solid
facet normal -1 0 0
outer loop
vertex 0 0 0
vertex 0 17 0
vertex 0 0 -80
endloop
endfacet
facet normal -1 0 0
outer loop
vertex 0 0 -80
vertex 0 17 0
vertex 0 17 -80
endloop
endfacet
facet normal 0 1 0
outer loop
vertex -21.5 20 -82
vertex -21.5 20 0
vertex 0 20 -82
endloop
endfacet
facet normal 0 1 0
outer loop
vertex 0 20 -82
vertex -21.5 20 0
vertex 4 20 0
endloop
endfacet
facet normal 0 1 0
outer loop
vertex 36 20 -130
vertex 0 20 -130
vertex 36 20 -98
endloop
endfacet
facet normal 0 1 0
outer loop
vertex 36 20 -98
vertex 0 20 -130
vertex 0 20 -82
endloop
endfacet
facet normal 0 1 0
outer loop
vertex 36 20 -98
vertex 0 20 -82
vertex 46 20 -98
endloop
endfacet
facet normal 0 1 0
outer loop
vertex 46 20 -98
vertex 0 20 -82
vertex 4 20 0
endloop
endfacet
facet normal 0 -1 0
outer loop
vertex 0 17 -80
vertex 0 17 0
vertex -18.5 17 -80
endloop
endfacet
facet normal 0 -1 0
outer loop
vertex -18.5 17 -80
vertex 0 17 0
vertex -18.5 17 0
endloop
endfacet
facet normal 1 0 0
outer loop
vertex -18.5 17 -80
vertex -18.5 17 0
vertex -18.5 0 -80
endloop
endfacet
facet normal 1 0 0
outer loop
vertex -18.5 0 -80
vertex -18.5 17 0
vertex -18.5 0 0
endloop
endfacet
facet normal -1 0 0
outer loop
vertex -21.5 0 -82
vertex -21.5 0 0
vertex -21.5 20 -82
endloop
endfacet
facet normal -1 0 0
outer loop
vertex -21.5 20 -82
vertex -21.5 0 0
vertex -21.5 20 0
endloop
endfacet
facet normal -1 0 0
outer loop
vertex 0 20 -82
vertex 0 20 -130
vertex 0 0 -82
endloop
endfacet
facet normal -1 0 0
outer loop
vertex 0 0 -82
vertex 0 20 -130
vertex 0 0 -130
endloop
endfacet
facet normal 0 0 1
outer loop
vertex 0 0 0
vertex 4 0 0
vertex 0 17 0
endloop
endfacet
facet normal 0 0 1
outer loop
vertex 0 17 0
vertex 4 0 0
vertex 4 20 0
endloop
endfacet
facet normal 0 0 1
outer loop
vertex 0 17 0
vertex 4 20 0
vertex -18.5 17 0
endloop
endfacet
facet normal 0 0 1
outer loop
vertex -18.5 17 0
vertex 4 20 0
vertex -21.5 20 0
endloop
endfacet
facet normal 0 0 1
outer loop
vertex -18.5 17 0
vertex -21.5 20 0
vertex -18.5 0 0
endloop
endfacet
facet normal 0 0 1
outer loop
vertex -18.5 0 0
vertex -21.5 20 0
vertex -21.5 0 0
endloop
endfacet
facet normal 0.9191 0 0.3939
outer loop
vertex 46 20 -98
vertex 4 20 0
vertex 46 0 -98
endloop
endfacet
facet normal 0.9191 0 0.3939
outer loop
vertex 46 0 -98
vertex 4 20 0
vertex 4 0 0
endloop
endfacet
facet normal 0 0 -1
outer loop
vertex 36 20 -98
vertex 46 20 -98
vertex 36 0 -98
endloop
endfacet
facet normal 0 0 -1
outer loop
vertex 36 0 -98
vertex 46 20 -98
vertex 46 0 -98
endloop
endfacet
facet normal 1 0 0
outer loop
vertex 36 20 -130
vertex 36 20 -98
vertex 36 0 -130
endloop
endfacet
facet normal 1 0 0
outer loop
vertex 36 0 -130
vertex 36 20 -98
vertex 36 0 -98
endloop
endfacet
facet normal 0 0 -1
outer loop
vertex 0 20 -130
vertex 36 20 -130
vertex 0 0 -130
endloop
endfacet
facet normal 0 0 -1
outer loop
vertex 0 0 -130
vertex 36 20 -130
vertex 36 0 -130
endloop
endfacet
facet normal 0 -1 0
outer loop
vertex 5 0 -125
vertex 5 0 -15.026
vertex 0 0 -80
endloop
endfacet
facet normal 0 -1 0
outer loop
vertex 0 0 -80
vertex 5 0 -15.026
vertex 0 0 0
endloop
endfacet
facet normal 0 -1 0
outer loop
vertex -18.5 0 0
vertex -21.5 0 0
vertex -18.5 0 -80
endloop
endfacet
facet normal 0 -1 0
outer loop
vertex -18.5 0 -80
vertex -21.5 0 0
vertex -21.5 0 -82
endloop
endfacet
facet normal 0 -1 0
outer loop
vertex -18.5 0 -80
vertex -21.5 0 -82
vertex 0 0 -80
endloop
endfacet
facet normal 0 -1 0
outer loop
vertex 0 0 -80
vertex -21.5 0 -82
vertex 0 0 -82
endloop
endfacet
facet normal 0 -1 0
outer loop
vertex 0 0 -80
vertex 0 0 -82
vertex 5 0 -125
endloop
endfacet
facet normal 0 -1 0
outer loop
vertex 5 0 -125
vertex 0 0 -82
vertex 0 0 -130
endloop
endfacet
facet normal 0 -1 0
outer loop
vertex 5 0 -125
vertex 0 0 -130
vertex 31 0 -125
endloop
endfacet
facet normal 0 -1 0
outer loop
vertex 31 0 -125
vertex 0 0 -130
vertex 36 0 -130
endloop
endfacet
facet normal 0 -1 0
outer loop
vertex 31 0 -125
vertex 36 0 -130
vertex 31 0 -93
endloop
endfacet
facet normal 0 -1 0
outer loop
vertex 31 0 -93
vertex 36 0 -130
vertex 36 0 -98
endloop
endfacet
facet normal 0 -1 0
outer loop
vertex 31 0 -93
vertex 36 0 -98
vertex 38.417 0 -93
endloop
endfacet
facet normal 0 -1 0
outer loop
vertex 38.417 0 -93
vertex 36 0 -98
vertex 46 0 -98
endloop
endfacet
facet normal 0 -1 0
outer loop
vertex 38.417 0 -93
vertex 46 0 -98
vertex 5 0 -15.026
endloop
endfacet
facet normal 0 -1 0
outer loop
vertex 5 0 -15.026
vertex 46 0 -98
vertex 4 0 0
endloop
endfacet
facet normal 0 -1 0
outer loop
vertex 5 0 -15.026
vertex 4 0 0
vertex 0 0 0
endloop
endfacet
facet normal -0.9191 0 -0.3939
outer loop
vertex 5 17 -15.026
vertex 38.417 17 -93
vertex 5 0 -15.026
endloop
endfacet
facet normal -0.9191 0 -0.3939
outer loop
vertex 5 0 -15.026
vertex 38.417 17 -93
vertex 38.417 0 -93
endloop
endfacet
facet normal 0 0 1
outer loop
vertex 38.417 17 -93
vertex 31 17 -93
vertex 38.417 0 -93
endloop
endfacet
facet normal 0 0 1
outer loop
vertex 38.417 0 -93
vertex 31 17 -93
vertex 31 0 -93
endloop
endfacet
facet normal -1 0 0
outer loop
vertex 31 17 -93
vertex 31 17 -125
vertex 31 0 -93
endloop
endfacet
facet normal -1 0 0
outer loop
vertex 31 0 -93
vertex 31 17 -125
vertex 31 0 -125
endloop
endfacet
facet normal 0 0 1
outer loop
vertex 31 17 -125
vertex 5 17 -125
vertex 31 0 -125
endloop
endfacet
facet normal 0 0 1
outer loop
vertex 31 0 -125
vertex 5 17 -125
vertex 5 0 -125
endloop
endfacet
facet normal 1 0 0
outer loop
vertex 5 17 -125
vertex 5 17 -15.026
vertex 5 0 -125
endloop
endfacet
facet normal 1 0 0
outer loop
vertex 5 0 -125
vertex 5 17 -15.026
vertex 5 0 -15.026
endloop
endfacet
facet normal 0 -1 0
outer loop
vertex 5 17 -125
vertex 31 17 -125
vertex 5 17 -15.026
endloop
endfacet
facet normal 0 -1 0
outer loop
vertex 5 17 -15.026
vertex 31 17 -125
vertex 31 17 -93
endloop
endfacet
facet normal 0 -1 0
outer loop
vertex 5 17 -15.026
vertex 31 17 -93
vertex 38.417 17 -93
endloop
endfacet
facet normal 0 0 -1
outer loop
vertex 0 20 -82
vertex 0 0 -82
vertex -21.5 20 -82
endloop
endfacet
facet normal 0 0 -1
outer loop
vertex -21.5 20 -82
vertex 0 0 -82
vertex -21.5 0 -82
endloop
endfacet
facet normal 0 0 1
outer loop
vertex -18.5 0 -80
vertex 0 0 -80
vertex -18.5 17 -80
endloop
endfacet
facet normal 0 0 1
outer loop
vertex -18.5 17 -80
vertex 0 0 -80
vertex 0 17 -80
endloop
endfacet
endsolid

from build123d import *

# Parameters (mm, degrees)
BOSS_EXTRU_1_DEPTH      = 20
BOSS_EXTRU_2_DEPTH      = 85
ESQUISSE4_W             = 50
ESQUISSE4_H             = 20
ENL_V_MAT_EXTRU_1_DEPTH = 47
ENL_V_MAT_EXTRU_2_DEPTH = 17
ESQUISSE6_W             = 21.5
ESQUISSE6_H             = 20
BOSS_EXTRU_3_DEPTH      = 2


with BuildPart() as part:
    # Esquisse1 → Boss.-Extru.1 (new body)
    with BuildSketch(Plane(origin=(0, 0, 0), x_dir=(1, 0, 0), z_dir=(0, 1, 0))):
        Polygon((0, 0), (0, 130), (36, 130), (36, 98), (46, 98), (4, 0), align=None)
    extrude(amount=BOSS_EXTRU_1_DEPTH)

    # Esquisse3 → Boss.-Extru.2 (add)
    with BuildSketch(Plane.XY):
        Polygon((0, 20), (-21.5, 20), (-21.5, 0), (-18.5, 0), (-18.5, 17), (0, 17), align=None)
    extrude(amount=-BOSS_EXTRU_2_DEPTH)

    # Esquisse4 → Enlèv. mat.-Extru.1 (cut)
    with BuildSketch(Plane.ZY):
        with Locations((-105, 10)):
            Rectangle(ESQUISSE4_W, ESQUISSE4_H)
    extrude(amount=ENL_V_MAT_EXTRU_1_DEPTH, mode=Mode.SUBTRACT)

    # Esquisse5 → Enlèv. mat.-Extru.2 (cut)
    with BuildSketch(Plane.XZ):
        Polygon((5, -15.02628851), (5, -125), (31, -125), (31, -93), (38.417304924, -93), align=None)
    extrude(amount=-ENL_V_MAT_EXTRU_2_DEPTH, mode=Mode.SUBTRACT)

    # Esquisse6 → Boss.-Extru.3 (add)
    with BuildSketch(Plane(origin=(0, 0, -80), x_dir=(-1, 0, 0), z_dir=(0, 0, -1))):
        with Locations((10.75, 10)):
            Rectangle(ESQUISSE6_W, ESQUISSE6_H)
    extrude(amount=BOSS_EXTRU_3_DEPTH)


solid = part.part
